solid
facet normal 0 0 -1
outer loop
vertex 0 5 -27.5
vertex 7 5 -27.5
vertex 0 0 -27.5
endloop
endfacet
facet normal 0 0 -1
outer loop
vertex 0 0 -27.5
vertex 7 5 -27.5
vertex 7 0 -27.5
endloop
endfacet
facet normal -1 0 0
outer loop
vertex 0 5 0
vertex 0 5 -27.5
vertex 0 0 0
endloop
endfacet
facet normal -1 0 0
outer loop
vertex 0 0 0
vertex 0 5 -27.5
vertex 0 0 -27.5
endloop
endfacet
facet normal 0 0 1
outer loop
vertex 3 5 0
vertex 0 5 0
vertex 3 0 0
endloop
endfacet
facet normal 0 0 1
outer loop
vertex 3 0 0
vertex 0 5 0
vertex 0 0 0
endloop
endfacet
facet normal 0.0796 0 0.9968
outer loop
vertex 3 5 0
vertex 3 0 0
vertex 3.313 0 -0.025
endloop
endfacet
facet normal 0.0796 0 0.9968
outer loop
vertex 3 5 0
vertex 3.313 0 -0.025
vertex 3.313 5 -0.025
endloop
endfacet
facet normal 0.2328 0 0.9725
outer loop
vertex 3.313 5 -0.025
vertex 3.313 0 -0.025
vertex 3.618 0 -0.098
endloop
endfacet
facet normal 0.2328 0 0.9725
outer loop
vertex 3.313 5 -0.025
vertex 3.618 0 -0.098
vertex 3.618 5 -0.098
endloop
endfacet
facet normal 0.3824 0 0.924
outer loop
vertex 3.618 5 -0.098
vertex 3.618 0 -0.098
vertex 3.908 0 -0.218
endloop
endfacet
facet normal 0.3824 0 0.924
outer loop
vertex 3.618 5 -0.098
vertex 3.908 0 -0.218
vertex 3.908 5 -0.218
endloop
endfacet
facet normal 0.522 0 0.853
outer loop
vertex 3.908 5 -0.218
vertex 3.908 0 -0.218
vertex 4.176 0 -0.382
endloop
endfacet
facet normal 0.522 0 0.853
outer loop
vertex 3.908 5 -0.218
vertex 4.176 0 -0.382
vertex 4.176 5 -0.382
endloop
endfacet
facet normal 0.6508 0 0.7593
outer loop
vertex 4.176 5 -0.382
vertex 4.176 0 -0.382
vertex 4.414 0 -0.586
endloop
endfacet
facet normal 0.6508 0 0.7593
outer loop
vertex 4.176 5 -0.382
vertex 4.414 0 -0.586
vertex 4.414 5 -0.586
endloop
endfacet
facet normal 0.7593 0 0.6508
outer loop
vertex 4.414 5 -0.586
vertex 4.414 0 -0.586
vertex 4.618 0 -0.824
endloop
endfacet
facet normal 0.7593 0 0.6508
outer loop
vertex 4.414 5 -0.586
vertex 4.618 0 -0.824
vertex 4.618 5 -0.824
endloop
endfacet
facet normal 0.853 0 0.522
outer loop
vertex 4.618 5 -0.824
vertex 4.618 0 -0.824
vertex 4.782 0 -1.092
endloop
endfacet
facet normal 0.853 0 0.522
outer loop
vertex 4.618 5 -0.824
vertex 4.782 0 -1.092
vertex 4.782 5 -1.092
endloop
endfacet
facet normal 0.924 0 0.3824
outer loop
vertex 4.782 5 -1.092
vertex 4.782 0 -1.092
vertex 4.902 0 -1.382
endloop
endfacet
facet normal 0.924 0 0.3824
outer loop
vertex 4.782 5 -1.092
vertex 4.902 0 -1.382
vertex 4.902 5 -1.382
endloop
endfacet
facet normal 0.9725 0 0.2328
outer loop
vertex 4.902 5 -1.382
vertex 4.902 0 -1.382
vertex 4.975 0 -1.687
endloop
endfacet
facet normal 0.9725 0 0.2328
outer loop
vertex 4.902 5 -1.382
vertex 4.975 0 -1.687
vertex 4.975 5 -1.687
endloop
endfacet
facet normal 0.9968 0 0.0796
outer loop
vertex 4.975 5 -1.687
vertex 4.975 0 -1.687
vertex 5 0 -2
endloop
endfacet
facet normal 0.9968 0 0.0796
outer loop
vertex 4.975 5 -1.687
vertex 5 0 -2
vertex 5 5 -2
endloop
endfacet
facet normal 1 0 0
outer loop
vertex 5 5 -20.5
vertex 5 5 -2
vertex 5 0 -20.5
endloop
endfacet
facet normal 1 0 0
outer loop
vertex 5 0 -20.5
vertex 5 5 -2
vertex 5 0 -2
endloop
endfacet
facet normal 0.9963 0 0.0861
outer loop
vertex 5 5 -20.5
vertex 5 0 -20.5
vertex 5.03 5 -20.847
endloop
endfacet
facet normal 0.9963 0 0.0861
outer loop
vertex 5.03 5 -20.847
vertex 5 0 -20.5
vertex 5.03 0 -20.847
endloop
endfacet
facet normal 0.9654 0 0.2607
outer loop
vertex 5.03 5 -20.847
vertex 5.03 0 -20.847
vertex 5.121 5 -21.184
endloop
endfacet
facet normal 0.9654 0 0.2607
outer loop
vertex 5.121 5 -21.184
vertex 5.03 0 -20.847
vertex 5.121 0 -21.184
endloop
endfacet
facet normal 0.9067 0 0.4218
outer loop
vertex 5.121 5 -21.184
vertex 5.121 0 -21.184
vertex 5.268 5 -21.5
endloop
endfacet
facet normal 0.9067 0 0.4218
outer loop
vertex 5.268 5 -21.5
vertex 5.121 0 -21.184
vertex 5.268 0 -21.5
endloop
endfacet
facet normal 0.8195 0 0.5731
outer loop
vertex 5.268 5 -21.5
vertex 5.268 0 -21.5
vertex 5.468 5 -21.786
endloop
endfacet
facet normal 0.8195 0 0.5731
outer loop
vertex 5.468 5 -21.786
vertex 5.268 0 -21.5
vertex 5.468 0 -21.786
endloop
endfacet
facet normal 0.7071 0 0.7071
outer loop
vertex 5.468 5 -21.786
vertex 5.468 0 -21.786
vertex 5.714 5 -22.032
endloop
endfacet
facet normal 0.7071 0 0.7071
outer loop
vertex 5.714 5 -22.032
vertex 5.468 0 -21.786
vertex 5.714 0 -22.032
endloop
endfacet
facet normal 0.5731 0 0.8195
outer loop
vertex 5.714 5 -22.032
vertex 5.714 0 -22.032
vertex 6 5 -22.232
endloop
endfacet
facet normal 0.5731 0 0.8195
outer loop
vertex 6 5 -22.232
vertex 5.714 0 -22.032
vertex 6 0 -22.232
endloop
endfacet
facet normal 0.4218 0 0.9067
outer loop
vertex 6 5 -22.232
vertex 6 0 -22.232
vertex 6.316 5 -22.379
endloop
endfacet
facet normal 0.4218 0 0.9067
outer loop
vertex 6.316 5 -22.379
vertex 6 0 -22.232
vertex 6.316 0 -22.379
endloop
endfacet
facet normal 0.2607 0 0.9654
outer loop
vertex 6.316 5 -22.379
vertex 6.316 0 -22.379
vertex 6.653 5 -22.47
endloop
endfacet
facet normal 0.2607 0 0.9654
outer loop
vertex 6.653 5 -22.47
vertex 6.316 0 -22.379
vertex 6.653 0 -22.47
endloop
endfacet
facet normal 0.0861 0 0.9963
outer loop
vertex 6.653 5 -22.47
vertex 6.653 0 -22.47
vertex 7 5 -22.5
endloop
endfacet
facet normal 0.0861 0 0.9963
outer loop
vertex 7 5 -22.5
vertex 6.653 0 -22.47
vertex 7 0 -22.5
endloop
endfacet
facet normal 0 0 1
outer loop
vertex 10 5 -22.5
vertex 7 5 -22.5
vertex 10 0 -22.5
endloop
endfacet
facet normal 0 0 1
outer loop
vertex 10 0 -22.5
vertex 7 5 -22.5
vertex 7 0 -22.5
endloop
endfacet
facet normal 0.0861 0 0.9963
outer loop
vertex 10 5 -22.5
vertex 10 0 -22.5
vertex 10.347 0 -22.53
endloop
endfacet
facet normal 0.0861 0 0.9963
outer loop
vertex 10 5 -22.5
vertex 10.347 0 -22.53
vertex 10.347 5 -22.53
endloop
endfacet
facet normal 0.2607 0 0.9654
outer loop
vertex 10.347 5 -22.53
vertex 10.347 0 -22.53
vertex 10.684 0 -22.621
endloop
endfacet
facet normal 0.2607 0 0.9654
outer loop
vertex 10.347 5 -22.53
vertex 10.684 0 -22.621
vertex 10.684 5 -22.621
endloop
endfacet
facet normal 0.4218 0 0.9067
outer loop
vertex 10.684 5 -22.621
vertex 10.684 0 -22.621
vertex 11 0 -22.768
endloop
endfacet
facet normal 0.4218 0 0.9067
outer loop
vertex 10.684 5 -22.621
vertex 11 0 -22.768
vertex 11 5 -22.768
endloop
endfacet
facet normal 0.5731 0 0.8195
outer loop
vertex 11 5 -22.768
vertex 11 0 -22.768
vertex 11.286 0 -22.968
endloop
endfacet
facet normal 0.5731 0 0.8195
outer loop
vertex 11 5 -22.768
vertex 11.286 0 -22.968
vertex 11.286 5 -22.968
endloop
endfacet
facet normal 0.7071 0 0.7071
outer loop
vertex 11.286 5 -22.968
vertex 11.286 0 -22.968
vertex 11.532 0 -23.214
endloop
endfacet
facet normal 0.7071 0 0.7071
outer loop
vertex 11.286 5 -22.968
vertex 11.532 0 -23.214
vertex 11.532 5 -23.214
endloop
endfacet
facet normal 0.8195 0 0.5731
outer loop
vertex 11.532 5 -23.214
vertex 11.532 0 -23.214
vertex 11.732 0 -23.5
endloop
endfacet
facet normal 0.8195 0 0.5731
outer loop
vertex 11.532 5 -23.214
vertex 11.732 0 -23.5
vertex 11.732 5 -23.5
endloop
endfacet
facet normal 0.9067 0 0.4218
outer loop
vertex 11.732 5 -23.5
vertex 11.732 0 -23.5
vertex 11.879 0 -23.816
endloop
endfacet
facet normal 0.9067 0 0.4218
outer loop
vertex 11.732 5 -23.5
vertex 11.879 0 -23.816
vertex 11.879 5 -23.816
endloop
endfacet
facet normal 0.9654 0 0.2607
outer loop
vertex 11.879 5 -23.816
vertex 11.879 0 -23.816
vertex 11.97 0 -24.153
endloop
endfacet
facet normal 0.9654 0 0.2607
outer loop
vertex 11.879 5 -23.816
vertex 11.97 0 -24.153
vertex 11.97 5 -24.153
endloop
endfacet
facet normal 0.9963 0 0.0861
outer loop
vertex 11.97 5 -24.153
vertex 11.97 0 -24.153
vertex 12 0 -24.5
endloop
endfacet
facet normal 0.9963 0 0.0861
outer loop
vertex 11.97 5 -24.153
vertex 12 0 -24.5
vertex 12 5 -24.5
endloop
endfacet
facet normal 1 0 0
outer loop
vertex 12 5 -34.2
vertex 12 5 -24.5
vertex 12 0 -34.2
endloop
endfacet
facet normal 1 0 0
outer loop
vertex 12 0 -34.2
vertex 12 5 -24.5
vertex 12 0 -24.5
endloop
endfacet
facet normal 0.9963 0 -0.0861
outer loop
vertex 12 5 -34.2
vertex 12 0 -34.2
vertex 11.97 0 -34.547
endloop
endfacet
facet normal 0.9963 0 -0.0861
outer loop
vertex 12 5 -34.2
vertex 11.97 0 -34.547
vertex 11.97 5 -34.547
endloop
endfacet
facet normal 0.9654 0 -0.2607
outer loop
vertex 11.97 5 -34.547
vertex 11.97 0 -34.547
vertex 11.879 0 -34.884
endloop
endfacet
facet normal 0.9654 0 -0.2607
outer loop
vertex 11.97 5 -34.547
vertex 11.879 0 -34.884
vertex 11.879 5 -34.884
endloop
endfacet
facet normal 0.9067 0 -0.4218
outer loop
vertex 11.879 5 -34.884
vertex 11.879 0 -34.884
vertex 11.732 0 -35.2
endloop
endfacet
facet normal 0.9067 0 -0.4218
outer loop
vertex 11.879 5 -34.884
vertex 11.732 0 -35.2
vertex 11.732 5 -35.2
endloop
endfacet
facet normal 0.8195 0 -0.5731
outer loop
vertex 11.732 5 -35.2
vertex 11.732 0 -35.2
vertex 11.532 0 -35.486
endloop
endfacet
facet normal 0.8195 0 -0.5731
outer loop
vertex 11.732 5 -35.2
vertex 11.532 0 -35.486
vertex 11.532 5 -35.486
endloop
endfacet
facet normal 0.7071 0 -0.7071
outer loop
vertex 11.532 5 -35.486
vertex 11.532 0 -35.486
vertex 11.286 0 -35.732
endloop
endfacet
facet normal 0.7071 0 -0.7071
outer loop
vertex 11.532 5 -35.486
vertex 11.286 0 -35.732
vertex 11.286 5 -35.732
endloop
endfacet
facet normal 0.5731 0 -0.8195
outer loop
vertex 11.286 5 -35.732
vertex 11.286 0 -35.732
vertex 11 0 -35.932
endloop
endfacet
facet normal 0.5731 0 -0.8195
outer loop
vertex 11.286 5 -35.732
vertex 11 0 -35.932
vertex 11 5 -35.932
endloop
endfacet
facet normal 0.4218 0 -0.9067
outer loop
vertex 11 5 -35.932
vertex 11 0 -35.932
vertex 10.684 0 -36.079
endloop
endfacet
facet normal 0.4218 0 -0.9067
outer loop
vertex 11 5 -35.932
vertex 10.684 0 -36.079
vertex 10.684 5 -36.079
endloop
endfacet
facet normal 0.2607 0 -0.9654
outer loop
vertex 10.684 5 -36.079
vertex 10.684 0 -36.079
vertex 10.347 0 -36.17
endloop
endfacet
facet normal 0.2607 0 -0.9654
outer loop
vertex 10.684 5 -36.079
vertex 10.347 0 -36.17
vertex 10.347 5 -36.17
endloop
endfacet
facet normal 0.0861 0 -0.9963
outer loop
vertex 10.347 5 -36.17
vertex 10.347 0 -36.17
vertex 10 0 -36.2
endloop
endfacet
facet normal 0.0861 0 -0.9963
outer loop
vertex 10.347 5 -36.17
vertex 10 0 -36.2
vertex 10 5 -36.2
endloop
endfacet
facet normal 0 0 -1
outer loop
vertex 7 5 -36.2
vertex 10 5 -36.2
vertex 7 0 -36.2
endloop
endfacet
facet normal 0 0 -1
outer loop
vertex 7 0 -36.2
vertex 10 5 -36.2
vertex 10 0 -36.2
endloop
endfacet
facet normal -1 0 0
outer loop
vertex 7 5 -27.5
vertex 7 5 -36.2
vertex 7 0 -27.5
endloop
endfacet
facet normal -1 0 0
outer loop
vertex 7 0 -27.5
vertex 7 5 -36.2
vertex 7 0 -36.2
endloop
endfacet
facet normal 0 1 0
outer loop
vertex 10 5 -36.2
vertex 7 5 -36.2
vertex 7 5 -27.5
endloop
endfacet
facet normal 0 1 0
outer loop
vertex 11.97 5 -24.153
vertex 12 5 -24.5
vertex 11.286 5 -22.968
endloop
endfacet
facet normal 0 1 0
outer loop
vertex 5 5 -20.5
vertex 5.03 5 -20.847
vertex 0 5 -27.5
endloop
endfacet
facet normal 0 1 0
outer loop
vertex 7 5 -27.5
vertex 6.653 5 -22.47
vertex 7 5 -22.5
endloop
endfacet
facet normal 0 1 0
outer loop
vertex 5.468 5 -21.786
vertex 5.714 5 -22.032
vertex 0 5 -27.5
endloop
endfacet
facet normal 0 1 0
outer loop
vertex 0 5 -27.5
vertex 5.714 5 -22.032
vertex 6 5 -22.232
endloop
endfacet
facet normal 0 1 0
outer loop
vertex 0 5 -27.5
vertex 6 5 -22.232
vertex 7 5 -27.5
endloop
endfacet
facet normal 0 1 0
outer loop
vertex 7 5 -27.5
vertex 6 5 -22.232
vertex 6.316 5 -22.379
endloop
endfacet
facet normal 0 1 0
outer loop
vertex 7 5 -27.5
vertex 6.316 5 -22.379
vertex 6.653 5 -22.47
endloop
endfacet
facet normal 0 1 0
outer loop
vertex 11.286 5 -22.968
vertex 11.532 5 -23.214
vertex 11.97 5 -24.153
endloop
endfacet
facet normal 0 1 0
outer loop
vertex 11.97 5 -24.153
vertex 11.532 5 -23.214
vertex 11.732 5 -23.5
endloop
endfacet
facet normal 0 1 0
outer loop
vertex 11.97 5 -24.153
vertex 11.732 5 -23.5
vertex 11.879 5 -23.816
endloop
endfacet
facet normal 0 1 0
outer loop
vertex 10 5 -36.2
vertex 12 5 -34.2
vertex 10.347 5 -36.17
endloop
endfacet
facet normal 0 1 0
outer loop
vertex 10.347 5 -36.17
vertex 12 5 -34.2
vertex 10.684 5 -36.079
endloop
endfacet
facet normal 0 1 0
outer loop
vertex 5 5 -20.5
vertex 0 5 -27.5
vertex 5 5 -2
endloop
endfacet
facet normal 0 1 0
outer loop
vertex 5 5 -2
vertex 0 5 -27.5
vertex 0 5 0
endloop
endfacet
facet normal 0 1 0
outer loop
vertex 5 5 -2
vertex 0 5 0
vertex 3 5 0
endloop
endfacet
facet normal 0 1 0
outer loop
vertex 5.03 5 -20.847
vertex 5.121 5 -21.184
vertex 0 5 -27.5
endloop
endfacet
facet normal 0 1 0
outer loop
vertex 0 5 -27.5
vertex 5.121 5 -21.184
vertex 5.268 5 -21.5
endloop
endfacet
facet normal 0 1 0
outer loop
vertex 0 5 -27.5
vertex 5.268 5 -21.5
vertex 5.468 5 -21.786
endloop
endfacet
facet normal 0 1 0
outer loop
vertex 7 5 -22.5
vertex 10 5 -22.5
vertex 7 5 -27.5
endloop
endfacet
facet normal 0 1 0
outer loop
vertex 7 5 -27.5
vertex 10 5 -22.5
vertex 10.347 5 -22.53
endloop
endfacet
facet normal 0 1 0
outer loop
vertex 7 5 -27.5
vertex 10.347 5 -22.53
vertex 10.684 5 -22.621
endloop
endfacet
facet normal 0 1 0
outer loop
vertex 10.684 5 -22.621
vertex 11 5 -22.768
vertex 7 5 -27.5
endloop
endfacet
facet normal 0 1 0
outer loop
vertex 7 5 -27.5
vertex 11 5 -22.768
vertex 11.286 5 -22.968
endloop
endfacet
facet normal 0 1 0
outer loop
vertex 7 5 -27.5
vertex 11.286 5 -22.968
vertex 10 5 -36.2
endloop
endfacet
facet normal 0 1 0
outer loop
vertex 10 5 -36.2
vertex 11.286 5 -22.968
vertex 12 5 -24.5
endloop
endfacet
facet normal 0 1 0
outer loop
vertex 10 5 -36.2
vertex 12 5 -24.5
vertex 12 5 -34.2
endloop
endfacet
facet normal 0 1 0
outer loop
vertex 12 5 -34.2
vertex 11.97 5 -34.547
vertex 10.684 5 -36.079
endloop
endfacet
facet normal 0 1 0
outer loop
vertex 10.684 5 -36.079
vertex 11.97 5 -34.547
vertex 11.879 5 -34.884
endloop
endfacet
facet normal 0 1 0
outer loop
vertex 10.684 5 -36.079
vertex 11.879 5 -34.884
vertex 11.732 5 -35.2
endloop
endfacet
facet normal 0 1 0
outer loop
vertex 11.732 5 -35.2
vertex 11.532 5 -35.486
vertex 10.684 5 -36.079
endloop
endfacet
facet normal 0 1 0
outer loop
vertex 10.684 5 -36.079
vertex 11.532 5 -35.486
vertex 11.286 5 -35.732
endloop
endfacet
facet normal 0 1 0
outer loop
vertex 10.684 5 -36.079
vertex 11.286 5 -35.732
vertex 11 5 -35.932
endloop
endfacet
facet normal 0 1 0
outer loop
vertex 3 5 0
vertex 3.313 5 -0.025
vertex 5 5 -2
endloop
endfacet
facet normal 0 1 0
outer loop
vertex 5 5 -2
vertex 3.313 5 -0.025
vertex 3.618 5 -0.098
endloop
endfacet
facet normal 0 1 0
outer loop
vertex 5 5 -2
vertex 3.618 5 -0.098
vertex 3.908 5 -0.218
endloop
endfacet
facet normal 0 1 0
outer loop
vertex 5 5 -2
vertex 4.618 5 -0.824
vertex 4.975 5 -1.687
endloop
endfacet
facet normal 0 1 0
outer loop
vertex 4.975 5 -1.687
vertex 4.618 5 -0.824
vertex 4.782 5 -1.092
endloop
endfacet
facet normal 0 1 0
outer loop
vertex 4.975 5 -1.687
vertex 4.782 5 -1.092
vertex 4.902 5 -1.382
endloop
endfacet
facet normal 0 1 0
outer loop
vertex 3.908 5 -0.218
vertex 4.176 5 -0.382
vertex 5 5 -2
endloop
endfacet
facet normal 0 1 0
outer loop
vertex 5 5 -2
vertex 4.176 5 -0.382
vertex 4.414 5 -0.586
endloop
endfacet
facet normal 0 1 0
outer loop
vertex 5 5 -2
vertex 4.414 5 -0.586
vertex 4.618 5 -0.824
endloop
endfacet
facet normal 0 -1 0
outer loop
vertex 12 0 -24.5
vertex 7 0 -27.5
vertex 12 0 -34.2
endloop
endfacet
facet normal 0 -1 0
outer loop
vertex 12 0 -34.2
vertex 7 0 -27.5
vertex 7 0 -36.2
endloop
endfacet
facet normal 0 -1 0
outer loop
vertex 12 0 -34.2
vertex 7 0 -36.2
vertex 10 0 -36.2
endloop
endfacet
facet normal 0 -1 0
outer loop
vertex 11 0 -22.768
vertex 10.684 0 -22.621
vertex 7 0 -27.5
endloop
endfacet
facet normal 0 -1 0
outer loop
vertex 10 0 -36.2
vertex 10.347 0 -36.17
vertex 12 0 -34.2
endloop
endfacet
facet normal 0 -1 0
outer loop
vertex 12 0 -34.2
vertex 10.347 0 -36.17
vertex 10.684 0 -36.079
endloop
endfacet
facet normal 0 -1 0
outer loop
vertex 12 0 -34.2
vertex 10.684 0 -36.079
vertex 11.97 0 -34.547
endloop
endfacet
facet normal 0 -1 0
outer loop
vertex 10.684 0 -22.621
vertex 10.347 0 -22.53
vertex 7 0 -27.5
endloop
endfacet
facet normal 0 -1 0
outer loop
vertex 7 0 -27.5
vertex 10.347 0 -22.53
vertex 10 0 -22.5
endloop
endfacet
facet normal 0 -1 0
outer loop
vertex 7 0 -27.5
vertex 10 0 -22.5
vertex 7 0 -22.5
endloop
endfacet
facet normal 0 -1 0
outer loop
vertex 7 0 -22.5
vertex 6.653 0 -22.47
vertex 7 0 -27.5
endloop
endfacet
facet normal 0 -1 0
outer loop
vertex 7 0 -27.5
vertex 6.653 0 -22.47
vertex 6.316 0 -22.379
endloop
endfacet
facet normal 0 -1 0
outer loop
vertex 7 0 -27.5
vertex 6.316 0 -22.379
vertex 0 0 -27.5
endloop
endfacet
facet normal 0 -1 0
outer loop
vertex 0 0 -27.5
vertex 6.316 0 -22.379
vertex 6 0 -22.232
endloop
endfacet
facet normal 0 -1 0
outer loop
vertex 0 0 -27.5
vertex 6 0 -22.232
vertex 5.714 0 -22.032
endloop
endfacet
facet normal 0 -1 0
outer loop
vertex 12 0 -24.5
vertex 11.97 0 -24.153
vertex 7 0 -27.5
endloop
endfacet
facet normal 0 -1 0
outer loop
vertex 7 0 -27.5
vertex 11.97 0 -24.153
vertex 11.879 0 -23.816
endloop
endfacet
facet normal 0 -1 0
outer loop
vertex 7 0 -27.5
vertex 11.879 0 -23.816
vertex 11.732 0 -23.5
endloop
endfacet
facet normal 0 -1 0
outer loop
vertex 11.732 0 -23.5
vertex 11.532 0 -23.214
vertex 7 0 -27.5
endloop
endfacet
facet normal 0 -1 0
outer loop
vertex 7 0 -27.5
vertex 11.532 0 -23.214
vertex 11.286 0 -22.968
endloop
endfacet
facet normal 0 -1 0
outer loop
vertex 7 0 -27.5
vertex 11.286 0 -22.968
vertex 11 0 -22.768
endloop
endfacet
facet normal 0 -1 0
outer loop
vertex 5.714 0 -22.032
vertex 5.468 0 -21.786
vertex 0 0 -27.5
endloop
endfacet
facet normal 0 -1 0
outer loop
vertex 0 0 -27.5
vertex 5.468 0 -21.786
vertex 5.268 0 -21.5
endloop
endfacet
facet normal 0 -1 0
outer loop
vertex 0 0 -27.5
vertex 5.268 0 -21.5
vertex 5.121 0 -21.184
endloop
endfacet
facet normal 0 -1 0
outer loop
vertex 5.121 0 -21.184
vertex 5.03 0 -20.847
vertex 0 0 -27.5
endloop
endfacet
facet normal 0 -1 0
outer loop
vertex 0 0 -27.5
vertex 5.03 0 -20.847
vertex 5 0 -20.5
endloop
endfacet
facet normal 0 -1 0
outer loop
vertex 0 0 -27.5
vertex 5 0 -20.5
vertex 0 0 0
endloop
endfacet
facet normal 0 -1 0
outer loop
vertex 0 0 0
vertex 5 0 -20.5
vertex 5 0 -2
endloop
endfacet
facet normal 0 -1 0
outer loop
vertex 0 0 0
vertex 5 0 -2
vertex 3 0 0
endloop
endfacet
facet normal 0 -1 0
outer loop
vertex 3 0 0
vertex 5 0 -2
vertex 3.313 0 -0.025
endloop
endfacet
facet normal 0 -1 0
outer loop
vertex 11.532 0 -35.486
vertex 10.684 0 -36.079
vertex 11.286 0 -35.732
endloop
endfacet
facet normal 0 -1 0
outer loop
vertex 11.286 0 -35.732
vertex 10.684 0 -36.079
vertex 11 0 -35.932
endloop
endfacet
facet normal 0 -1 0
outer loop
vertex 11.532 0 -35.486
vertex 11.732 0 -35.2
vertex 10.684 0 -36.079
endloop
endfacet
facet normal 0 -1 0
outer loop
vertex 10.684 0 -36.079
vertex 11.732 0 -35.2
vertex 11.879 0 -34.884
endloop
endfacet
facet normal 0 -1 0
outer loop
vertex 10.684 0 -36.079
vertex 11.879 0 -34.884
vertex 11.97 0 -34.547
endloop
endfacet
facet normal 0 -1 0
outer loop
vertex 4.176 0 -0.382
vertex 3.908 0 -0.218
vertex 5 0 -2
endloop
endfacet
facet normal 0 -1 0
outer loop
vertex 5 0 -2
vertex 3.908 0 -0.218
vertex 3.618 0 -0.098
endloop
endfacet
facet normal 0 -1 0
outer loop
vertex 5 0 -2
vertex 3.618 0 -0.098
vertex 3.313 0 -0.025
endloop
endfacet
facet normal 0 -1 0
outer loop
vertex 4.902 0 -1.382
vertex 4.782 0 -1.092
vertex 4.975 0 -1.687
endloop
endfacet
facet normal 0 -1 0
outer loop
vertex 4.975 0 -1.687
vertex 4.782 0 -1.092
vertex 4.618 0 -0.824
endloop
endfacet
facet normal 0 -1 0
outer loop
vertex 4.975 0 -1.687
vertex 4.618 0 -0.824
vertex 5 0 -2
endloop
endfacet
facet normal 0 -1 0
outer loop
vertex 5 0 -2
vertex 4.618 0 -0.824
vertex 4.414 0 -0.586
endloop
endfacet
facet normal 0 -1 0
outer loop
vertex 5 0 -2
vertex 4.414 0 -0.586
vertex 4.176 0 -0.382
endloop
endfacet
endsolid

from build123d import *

# Parameters (mm, degrees)
BOSS_EXTRUDE1_DEPTH = 5


with BuildPart() as part:
    # Sketch1 → Boss-Extrude1 (new body)
    with BuildSketch(Plane(origin=(0, 0, 0), x_dir=(1, 0, 0), z_dir=(0, 1, 0))):
        with BuildLine():
            Line((7, 36.2), (10, 36.2))
            ThreePointArc((10, 36.2), (11.414213562, 35.614213562), (12, 34.2))
            Line((12, 34.2), (12, 24.5))
            ThreePointArc((12, 24.5), (11.414213562, 23.085786438), (10, 22.5))
            Line((10, 22.5), (7, 22.5))
            ThreePointArc((7, 22.5), (5.585786438, 21.914213562), (5, 20.5))
            Line((5, 20.5), (5, 2))
            ThreePointArc((5, 2), (4.414213562, 0.585786438), (3, 0))
            Line((3, 0), (0, 0))
            Line((0, 0), (0, 27.5))
            Line((0, 27.5), (7, 27.5))
            Line((7, 27.5), (7, 36.2))
        make_face()
    extrude(amount=BOSS_EXTRUDE1_DEPTH)


solid = part.part
